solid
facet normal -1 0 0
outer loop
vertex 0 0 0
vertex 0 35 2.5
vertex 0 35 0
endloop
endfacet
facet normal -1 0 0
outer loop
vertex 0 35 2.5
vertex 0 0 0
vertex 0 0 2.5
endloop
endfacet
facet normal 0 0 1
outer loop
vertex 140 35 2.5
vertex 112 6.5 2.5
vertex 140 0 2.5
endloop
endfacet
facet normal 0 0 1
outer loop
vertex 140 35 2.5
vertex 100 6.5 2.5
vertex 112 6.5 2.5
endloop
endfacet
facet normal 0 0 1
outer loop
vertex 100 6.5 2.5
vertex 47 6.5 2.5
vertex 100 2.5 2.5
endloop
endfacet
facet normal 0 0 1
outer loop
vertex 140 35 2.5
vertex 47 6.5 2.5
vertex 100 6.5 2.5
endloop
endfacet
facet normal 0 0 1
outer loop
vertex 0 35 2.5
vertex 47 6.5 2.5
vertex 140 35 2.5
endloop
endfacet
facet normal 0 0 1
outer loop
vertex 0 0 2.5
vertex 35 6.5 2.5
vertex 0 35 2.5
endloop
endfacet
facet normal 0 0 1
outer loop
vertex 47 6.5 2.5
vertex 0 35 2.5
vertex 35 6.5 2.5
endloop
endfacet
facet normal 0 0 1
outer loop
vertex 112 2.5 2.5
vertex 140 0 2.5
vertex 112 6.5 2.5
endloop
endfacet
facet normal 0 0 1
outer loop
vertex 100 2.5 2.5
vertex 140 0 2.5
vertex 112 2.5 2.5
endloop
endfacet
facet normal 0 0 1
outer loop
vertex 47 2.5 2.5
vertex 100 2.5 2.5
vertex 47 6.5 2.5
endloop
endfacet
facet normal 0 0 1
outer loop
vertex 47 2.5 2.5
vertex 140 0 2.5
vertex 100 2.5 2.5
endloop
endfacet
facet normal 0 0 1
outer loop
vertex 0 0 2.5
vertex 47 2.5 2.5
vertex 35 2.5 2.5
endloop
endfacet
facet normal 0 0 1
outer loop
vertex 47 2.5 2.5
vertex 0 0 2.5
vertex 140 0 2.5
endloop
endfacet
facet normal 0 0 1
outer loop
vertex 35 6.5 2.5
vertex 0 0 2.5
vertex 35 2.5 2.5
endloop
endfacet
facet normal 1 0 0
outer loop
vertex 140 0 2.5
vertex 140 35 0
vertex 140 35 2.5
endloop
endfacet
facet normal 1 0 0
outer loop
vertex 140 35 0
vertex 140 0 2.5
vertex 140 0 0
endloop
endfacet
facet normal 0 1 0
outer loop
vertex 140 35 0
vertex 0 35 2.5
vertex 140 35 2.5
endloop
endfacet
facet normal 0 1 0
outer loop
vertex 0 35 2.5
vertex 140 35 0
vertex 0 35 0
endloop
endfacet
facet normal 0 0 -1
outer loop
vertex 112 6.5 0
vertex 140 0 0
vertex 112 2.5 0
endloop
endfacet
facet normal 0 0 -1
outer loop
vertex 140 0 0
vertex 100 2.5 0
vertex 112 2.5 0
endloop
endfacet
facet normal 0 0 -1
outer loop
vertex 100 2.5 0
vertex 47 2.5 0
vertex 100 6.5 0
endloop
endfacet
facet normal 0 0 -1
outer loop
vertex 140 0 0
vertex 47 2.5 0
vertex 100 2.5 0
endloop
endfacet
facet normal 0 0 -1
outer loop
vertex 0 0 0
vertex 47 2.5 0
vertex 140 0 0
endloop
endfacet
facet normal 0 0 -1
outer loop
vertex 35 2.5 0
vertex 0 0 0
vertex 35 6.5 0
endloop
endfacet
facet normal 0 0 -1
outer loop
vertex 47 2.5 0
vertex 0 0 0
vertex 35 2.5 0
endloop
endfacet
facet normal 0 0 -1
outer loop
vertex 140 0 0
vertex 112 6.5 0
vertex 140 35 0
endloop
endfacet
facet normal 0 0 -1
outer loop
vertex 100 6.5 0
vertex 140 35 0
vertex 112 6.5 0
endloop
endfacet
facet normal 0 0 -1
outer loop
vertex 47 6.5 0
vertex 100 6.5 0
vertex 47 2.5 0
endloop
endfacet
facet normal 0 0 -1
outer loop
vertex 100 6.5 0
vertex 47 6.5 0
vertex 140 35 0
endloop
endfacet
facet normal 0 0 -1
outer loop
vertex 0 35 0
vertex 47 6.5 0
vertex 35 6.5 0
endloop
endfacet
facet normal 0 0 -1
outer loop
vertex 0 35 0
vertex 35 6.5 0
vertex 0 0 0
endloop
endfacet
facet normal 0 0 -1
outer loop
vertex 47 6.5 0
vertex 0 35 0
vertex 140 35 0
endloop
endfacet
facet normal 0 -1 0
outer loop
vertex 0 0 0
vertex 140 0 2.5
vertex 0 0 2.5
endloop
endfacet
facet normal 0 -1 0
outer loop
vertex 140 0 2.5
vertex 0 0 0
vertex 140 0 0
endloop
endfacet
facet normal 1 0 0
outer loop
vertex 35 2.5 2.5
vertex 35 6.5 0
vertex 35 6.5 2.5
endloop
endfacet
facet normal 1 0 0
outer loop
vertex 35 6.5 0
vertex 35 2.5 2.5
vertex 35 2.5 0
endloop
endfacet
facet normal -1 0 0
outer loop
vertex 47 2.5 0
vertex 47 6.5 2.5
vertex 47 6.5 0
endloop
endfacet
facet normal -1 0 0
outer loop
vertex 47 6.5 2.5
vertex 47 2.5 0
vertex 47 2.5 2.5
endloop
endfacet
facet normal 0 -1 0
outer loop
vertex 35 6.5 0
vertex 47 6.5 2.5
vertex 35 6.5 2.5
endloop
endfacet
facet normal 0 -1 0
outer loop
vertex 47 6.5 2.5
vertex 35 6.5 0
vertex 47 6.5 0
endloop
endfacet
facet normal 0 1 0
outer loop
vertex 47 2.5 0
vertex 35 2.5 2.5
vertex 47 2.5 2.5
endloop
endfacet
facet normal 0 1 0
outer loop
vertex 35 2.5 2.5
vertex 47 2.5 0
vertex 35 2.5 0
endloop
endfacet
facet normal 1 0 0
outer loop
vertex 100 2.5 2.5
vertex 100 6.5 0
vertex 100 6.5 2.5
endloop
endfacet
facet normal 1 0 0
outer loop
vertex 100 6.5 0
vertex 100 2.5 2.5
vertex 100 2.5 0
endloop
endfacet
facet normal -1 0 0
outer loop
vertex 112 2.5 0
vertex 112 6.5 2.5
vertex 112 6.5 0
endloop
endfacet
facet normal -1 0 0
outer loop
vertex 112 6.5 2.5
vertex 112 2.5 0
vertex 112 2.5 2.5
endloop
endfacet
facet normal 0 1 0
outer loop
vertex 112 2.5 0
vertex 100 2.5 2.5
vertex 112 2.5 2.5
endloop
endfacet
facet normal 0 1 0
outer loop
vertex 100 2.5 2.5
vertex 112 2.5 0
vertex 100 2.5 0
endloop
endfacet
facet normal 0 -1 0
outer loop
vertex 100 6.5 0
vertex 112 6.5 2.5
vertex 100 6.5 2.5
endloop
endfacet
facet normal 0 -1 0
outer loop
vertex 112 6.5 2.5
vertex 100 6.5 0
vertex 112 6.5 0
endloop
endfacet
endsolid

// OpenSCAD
$fn = 100;

difference() {
    cube ([140,35,2.5]);
        translate([35, 2.5, 0]) {
            cube ([12,4,2.5]);
        }
        translate ([100,2.5,0]) {
            cube ([12,4,2.5]);
        }
}
